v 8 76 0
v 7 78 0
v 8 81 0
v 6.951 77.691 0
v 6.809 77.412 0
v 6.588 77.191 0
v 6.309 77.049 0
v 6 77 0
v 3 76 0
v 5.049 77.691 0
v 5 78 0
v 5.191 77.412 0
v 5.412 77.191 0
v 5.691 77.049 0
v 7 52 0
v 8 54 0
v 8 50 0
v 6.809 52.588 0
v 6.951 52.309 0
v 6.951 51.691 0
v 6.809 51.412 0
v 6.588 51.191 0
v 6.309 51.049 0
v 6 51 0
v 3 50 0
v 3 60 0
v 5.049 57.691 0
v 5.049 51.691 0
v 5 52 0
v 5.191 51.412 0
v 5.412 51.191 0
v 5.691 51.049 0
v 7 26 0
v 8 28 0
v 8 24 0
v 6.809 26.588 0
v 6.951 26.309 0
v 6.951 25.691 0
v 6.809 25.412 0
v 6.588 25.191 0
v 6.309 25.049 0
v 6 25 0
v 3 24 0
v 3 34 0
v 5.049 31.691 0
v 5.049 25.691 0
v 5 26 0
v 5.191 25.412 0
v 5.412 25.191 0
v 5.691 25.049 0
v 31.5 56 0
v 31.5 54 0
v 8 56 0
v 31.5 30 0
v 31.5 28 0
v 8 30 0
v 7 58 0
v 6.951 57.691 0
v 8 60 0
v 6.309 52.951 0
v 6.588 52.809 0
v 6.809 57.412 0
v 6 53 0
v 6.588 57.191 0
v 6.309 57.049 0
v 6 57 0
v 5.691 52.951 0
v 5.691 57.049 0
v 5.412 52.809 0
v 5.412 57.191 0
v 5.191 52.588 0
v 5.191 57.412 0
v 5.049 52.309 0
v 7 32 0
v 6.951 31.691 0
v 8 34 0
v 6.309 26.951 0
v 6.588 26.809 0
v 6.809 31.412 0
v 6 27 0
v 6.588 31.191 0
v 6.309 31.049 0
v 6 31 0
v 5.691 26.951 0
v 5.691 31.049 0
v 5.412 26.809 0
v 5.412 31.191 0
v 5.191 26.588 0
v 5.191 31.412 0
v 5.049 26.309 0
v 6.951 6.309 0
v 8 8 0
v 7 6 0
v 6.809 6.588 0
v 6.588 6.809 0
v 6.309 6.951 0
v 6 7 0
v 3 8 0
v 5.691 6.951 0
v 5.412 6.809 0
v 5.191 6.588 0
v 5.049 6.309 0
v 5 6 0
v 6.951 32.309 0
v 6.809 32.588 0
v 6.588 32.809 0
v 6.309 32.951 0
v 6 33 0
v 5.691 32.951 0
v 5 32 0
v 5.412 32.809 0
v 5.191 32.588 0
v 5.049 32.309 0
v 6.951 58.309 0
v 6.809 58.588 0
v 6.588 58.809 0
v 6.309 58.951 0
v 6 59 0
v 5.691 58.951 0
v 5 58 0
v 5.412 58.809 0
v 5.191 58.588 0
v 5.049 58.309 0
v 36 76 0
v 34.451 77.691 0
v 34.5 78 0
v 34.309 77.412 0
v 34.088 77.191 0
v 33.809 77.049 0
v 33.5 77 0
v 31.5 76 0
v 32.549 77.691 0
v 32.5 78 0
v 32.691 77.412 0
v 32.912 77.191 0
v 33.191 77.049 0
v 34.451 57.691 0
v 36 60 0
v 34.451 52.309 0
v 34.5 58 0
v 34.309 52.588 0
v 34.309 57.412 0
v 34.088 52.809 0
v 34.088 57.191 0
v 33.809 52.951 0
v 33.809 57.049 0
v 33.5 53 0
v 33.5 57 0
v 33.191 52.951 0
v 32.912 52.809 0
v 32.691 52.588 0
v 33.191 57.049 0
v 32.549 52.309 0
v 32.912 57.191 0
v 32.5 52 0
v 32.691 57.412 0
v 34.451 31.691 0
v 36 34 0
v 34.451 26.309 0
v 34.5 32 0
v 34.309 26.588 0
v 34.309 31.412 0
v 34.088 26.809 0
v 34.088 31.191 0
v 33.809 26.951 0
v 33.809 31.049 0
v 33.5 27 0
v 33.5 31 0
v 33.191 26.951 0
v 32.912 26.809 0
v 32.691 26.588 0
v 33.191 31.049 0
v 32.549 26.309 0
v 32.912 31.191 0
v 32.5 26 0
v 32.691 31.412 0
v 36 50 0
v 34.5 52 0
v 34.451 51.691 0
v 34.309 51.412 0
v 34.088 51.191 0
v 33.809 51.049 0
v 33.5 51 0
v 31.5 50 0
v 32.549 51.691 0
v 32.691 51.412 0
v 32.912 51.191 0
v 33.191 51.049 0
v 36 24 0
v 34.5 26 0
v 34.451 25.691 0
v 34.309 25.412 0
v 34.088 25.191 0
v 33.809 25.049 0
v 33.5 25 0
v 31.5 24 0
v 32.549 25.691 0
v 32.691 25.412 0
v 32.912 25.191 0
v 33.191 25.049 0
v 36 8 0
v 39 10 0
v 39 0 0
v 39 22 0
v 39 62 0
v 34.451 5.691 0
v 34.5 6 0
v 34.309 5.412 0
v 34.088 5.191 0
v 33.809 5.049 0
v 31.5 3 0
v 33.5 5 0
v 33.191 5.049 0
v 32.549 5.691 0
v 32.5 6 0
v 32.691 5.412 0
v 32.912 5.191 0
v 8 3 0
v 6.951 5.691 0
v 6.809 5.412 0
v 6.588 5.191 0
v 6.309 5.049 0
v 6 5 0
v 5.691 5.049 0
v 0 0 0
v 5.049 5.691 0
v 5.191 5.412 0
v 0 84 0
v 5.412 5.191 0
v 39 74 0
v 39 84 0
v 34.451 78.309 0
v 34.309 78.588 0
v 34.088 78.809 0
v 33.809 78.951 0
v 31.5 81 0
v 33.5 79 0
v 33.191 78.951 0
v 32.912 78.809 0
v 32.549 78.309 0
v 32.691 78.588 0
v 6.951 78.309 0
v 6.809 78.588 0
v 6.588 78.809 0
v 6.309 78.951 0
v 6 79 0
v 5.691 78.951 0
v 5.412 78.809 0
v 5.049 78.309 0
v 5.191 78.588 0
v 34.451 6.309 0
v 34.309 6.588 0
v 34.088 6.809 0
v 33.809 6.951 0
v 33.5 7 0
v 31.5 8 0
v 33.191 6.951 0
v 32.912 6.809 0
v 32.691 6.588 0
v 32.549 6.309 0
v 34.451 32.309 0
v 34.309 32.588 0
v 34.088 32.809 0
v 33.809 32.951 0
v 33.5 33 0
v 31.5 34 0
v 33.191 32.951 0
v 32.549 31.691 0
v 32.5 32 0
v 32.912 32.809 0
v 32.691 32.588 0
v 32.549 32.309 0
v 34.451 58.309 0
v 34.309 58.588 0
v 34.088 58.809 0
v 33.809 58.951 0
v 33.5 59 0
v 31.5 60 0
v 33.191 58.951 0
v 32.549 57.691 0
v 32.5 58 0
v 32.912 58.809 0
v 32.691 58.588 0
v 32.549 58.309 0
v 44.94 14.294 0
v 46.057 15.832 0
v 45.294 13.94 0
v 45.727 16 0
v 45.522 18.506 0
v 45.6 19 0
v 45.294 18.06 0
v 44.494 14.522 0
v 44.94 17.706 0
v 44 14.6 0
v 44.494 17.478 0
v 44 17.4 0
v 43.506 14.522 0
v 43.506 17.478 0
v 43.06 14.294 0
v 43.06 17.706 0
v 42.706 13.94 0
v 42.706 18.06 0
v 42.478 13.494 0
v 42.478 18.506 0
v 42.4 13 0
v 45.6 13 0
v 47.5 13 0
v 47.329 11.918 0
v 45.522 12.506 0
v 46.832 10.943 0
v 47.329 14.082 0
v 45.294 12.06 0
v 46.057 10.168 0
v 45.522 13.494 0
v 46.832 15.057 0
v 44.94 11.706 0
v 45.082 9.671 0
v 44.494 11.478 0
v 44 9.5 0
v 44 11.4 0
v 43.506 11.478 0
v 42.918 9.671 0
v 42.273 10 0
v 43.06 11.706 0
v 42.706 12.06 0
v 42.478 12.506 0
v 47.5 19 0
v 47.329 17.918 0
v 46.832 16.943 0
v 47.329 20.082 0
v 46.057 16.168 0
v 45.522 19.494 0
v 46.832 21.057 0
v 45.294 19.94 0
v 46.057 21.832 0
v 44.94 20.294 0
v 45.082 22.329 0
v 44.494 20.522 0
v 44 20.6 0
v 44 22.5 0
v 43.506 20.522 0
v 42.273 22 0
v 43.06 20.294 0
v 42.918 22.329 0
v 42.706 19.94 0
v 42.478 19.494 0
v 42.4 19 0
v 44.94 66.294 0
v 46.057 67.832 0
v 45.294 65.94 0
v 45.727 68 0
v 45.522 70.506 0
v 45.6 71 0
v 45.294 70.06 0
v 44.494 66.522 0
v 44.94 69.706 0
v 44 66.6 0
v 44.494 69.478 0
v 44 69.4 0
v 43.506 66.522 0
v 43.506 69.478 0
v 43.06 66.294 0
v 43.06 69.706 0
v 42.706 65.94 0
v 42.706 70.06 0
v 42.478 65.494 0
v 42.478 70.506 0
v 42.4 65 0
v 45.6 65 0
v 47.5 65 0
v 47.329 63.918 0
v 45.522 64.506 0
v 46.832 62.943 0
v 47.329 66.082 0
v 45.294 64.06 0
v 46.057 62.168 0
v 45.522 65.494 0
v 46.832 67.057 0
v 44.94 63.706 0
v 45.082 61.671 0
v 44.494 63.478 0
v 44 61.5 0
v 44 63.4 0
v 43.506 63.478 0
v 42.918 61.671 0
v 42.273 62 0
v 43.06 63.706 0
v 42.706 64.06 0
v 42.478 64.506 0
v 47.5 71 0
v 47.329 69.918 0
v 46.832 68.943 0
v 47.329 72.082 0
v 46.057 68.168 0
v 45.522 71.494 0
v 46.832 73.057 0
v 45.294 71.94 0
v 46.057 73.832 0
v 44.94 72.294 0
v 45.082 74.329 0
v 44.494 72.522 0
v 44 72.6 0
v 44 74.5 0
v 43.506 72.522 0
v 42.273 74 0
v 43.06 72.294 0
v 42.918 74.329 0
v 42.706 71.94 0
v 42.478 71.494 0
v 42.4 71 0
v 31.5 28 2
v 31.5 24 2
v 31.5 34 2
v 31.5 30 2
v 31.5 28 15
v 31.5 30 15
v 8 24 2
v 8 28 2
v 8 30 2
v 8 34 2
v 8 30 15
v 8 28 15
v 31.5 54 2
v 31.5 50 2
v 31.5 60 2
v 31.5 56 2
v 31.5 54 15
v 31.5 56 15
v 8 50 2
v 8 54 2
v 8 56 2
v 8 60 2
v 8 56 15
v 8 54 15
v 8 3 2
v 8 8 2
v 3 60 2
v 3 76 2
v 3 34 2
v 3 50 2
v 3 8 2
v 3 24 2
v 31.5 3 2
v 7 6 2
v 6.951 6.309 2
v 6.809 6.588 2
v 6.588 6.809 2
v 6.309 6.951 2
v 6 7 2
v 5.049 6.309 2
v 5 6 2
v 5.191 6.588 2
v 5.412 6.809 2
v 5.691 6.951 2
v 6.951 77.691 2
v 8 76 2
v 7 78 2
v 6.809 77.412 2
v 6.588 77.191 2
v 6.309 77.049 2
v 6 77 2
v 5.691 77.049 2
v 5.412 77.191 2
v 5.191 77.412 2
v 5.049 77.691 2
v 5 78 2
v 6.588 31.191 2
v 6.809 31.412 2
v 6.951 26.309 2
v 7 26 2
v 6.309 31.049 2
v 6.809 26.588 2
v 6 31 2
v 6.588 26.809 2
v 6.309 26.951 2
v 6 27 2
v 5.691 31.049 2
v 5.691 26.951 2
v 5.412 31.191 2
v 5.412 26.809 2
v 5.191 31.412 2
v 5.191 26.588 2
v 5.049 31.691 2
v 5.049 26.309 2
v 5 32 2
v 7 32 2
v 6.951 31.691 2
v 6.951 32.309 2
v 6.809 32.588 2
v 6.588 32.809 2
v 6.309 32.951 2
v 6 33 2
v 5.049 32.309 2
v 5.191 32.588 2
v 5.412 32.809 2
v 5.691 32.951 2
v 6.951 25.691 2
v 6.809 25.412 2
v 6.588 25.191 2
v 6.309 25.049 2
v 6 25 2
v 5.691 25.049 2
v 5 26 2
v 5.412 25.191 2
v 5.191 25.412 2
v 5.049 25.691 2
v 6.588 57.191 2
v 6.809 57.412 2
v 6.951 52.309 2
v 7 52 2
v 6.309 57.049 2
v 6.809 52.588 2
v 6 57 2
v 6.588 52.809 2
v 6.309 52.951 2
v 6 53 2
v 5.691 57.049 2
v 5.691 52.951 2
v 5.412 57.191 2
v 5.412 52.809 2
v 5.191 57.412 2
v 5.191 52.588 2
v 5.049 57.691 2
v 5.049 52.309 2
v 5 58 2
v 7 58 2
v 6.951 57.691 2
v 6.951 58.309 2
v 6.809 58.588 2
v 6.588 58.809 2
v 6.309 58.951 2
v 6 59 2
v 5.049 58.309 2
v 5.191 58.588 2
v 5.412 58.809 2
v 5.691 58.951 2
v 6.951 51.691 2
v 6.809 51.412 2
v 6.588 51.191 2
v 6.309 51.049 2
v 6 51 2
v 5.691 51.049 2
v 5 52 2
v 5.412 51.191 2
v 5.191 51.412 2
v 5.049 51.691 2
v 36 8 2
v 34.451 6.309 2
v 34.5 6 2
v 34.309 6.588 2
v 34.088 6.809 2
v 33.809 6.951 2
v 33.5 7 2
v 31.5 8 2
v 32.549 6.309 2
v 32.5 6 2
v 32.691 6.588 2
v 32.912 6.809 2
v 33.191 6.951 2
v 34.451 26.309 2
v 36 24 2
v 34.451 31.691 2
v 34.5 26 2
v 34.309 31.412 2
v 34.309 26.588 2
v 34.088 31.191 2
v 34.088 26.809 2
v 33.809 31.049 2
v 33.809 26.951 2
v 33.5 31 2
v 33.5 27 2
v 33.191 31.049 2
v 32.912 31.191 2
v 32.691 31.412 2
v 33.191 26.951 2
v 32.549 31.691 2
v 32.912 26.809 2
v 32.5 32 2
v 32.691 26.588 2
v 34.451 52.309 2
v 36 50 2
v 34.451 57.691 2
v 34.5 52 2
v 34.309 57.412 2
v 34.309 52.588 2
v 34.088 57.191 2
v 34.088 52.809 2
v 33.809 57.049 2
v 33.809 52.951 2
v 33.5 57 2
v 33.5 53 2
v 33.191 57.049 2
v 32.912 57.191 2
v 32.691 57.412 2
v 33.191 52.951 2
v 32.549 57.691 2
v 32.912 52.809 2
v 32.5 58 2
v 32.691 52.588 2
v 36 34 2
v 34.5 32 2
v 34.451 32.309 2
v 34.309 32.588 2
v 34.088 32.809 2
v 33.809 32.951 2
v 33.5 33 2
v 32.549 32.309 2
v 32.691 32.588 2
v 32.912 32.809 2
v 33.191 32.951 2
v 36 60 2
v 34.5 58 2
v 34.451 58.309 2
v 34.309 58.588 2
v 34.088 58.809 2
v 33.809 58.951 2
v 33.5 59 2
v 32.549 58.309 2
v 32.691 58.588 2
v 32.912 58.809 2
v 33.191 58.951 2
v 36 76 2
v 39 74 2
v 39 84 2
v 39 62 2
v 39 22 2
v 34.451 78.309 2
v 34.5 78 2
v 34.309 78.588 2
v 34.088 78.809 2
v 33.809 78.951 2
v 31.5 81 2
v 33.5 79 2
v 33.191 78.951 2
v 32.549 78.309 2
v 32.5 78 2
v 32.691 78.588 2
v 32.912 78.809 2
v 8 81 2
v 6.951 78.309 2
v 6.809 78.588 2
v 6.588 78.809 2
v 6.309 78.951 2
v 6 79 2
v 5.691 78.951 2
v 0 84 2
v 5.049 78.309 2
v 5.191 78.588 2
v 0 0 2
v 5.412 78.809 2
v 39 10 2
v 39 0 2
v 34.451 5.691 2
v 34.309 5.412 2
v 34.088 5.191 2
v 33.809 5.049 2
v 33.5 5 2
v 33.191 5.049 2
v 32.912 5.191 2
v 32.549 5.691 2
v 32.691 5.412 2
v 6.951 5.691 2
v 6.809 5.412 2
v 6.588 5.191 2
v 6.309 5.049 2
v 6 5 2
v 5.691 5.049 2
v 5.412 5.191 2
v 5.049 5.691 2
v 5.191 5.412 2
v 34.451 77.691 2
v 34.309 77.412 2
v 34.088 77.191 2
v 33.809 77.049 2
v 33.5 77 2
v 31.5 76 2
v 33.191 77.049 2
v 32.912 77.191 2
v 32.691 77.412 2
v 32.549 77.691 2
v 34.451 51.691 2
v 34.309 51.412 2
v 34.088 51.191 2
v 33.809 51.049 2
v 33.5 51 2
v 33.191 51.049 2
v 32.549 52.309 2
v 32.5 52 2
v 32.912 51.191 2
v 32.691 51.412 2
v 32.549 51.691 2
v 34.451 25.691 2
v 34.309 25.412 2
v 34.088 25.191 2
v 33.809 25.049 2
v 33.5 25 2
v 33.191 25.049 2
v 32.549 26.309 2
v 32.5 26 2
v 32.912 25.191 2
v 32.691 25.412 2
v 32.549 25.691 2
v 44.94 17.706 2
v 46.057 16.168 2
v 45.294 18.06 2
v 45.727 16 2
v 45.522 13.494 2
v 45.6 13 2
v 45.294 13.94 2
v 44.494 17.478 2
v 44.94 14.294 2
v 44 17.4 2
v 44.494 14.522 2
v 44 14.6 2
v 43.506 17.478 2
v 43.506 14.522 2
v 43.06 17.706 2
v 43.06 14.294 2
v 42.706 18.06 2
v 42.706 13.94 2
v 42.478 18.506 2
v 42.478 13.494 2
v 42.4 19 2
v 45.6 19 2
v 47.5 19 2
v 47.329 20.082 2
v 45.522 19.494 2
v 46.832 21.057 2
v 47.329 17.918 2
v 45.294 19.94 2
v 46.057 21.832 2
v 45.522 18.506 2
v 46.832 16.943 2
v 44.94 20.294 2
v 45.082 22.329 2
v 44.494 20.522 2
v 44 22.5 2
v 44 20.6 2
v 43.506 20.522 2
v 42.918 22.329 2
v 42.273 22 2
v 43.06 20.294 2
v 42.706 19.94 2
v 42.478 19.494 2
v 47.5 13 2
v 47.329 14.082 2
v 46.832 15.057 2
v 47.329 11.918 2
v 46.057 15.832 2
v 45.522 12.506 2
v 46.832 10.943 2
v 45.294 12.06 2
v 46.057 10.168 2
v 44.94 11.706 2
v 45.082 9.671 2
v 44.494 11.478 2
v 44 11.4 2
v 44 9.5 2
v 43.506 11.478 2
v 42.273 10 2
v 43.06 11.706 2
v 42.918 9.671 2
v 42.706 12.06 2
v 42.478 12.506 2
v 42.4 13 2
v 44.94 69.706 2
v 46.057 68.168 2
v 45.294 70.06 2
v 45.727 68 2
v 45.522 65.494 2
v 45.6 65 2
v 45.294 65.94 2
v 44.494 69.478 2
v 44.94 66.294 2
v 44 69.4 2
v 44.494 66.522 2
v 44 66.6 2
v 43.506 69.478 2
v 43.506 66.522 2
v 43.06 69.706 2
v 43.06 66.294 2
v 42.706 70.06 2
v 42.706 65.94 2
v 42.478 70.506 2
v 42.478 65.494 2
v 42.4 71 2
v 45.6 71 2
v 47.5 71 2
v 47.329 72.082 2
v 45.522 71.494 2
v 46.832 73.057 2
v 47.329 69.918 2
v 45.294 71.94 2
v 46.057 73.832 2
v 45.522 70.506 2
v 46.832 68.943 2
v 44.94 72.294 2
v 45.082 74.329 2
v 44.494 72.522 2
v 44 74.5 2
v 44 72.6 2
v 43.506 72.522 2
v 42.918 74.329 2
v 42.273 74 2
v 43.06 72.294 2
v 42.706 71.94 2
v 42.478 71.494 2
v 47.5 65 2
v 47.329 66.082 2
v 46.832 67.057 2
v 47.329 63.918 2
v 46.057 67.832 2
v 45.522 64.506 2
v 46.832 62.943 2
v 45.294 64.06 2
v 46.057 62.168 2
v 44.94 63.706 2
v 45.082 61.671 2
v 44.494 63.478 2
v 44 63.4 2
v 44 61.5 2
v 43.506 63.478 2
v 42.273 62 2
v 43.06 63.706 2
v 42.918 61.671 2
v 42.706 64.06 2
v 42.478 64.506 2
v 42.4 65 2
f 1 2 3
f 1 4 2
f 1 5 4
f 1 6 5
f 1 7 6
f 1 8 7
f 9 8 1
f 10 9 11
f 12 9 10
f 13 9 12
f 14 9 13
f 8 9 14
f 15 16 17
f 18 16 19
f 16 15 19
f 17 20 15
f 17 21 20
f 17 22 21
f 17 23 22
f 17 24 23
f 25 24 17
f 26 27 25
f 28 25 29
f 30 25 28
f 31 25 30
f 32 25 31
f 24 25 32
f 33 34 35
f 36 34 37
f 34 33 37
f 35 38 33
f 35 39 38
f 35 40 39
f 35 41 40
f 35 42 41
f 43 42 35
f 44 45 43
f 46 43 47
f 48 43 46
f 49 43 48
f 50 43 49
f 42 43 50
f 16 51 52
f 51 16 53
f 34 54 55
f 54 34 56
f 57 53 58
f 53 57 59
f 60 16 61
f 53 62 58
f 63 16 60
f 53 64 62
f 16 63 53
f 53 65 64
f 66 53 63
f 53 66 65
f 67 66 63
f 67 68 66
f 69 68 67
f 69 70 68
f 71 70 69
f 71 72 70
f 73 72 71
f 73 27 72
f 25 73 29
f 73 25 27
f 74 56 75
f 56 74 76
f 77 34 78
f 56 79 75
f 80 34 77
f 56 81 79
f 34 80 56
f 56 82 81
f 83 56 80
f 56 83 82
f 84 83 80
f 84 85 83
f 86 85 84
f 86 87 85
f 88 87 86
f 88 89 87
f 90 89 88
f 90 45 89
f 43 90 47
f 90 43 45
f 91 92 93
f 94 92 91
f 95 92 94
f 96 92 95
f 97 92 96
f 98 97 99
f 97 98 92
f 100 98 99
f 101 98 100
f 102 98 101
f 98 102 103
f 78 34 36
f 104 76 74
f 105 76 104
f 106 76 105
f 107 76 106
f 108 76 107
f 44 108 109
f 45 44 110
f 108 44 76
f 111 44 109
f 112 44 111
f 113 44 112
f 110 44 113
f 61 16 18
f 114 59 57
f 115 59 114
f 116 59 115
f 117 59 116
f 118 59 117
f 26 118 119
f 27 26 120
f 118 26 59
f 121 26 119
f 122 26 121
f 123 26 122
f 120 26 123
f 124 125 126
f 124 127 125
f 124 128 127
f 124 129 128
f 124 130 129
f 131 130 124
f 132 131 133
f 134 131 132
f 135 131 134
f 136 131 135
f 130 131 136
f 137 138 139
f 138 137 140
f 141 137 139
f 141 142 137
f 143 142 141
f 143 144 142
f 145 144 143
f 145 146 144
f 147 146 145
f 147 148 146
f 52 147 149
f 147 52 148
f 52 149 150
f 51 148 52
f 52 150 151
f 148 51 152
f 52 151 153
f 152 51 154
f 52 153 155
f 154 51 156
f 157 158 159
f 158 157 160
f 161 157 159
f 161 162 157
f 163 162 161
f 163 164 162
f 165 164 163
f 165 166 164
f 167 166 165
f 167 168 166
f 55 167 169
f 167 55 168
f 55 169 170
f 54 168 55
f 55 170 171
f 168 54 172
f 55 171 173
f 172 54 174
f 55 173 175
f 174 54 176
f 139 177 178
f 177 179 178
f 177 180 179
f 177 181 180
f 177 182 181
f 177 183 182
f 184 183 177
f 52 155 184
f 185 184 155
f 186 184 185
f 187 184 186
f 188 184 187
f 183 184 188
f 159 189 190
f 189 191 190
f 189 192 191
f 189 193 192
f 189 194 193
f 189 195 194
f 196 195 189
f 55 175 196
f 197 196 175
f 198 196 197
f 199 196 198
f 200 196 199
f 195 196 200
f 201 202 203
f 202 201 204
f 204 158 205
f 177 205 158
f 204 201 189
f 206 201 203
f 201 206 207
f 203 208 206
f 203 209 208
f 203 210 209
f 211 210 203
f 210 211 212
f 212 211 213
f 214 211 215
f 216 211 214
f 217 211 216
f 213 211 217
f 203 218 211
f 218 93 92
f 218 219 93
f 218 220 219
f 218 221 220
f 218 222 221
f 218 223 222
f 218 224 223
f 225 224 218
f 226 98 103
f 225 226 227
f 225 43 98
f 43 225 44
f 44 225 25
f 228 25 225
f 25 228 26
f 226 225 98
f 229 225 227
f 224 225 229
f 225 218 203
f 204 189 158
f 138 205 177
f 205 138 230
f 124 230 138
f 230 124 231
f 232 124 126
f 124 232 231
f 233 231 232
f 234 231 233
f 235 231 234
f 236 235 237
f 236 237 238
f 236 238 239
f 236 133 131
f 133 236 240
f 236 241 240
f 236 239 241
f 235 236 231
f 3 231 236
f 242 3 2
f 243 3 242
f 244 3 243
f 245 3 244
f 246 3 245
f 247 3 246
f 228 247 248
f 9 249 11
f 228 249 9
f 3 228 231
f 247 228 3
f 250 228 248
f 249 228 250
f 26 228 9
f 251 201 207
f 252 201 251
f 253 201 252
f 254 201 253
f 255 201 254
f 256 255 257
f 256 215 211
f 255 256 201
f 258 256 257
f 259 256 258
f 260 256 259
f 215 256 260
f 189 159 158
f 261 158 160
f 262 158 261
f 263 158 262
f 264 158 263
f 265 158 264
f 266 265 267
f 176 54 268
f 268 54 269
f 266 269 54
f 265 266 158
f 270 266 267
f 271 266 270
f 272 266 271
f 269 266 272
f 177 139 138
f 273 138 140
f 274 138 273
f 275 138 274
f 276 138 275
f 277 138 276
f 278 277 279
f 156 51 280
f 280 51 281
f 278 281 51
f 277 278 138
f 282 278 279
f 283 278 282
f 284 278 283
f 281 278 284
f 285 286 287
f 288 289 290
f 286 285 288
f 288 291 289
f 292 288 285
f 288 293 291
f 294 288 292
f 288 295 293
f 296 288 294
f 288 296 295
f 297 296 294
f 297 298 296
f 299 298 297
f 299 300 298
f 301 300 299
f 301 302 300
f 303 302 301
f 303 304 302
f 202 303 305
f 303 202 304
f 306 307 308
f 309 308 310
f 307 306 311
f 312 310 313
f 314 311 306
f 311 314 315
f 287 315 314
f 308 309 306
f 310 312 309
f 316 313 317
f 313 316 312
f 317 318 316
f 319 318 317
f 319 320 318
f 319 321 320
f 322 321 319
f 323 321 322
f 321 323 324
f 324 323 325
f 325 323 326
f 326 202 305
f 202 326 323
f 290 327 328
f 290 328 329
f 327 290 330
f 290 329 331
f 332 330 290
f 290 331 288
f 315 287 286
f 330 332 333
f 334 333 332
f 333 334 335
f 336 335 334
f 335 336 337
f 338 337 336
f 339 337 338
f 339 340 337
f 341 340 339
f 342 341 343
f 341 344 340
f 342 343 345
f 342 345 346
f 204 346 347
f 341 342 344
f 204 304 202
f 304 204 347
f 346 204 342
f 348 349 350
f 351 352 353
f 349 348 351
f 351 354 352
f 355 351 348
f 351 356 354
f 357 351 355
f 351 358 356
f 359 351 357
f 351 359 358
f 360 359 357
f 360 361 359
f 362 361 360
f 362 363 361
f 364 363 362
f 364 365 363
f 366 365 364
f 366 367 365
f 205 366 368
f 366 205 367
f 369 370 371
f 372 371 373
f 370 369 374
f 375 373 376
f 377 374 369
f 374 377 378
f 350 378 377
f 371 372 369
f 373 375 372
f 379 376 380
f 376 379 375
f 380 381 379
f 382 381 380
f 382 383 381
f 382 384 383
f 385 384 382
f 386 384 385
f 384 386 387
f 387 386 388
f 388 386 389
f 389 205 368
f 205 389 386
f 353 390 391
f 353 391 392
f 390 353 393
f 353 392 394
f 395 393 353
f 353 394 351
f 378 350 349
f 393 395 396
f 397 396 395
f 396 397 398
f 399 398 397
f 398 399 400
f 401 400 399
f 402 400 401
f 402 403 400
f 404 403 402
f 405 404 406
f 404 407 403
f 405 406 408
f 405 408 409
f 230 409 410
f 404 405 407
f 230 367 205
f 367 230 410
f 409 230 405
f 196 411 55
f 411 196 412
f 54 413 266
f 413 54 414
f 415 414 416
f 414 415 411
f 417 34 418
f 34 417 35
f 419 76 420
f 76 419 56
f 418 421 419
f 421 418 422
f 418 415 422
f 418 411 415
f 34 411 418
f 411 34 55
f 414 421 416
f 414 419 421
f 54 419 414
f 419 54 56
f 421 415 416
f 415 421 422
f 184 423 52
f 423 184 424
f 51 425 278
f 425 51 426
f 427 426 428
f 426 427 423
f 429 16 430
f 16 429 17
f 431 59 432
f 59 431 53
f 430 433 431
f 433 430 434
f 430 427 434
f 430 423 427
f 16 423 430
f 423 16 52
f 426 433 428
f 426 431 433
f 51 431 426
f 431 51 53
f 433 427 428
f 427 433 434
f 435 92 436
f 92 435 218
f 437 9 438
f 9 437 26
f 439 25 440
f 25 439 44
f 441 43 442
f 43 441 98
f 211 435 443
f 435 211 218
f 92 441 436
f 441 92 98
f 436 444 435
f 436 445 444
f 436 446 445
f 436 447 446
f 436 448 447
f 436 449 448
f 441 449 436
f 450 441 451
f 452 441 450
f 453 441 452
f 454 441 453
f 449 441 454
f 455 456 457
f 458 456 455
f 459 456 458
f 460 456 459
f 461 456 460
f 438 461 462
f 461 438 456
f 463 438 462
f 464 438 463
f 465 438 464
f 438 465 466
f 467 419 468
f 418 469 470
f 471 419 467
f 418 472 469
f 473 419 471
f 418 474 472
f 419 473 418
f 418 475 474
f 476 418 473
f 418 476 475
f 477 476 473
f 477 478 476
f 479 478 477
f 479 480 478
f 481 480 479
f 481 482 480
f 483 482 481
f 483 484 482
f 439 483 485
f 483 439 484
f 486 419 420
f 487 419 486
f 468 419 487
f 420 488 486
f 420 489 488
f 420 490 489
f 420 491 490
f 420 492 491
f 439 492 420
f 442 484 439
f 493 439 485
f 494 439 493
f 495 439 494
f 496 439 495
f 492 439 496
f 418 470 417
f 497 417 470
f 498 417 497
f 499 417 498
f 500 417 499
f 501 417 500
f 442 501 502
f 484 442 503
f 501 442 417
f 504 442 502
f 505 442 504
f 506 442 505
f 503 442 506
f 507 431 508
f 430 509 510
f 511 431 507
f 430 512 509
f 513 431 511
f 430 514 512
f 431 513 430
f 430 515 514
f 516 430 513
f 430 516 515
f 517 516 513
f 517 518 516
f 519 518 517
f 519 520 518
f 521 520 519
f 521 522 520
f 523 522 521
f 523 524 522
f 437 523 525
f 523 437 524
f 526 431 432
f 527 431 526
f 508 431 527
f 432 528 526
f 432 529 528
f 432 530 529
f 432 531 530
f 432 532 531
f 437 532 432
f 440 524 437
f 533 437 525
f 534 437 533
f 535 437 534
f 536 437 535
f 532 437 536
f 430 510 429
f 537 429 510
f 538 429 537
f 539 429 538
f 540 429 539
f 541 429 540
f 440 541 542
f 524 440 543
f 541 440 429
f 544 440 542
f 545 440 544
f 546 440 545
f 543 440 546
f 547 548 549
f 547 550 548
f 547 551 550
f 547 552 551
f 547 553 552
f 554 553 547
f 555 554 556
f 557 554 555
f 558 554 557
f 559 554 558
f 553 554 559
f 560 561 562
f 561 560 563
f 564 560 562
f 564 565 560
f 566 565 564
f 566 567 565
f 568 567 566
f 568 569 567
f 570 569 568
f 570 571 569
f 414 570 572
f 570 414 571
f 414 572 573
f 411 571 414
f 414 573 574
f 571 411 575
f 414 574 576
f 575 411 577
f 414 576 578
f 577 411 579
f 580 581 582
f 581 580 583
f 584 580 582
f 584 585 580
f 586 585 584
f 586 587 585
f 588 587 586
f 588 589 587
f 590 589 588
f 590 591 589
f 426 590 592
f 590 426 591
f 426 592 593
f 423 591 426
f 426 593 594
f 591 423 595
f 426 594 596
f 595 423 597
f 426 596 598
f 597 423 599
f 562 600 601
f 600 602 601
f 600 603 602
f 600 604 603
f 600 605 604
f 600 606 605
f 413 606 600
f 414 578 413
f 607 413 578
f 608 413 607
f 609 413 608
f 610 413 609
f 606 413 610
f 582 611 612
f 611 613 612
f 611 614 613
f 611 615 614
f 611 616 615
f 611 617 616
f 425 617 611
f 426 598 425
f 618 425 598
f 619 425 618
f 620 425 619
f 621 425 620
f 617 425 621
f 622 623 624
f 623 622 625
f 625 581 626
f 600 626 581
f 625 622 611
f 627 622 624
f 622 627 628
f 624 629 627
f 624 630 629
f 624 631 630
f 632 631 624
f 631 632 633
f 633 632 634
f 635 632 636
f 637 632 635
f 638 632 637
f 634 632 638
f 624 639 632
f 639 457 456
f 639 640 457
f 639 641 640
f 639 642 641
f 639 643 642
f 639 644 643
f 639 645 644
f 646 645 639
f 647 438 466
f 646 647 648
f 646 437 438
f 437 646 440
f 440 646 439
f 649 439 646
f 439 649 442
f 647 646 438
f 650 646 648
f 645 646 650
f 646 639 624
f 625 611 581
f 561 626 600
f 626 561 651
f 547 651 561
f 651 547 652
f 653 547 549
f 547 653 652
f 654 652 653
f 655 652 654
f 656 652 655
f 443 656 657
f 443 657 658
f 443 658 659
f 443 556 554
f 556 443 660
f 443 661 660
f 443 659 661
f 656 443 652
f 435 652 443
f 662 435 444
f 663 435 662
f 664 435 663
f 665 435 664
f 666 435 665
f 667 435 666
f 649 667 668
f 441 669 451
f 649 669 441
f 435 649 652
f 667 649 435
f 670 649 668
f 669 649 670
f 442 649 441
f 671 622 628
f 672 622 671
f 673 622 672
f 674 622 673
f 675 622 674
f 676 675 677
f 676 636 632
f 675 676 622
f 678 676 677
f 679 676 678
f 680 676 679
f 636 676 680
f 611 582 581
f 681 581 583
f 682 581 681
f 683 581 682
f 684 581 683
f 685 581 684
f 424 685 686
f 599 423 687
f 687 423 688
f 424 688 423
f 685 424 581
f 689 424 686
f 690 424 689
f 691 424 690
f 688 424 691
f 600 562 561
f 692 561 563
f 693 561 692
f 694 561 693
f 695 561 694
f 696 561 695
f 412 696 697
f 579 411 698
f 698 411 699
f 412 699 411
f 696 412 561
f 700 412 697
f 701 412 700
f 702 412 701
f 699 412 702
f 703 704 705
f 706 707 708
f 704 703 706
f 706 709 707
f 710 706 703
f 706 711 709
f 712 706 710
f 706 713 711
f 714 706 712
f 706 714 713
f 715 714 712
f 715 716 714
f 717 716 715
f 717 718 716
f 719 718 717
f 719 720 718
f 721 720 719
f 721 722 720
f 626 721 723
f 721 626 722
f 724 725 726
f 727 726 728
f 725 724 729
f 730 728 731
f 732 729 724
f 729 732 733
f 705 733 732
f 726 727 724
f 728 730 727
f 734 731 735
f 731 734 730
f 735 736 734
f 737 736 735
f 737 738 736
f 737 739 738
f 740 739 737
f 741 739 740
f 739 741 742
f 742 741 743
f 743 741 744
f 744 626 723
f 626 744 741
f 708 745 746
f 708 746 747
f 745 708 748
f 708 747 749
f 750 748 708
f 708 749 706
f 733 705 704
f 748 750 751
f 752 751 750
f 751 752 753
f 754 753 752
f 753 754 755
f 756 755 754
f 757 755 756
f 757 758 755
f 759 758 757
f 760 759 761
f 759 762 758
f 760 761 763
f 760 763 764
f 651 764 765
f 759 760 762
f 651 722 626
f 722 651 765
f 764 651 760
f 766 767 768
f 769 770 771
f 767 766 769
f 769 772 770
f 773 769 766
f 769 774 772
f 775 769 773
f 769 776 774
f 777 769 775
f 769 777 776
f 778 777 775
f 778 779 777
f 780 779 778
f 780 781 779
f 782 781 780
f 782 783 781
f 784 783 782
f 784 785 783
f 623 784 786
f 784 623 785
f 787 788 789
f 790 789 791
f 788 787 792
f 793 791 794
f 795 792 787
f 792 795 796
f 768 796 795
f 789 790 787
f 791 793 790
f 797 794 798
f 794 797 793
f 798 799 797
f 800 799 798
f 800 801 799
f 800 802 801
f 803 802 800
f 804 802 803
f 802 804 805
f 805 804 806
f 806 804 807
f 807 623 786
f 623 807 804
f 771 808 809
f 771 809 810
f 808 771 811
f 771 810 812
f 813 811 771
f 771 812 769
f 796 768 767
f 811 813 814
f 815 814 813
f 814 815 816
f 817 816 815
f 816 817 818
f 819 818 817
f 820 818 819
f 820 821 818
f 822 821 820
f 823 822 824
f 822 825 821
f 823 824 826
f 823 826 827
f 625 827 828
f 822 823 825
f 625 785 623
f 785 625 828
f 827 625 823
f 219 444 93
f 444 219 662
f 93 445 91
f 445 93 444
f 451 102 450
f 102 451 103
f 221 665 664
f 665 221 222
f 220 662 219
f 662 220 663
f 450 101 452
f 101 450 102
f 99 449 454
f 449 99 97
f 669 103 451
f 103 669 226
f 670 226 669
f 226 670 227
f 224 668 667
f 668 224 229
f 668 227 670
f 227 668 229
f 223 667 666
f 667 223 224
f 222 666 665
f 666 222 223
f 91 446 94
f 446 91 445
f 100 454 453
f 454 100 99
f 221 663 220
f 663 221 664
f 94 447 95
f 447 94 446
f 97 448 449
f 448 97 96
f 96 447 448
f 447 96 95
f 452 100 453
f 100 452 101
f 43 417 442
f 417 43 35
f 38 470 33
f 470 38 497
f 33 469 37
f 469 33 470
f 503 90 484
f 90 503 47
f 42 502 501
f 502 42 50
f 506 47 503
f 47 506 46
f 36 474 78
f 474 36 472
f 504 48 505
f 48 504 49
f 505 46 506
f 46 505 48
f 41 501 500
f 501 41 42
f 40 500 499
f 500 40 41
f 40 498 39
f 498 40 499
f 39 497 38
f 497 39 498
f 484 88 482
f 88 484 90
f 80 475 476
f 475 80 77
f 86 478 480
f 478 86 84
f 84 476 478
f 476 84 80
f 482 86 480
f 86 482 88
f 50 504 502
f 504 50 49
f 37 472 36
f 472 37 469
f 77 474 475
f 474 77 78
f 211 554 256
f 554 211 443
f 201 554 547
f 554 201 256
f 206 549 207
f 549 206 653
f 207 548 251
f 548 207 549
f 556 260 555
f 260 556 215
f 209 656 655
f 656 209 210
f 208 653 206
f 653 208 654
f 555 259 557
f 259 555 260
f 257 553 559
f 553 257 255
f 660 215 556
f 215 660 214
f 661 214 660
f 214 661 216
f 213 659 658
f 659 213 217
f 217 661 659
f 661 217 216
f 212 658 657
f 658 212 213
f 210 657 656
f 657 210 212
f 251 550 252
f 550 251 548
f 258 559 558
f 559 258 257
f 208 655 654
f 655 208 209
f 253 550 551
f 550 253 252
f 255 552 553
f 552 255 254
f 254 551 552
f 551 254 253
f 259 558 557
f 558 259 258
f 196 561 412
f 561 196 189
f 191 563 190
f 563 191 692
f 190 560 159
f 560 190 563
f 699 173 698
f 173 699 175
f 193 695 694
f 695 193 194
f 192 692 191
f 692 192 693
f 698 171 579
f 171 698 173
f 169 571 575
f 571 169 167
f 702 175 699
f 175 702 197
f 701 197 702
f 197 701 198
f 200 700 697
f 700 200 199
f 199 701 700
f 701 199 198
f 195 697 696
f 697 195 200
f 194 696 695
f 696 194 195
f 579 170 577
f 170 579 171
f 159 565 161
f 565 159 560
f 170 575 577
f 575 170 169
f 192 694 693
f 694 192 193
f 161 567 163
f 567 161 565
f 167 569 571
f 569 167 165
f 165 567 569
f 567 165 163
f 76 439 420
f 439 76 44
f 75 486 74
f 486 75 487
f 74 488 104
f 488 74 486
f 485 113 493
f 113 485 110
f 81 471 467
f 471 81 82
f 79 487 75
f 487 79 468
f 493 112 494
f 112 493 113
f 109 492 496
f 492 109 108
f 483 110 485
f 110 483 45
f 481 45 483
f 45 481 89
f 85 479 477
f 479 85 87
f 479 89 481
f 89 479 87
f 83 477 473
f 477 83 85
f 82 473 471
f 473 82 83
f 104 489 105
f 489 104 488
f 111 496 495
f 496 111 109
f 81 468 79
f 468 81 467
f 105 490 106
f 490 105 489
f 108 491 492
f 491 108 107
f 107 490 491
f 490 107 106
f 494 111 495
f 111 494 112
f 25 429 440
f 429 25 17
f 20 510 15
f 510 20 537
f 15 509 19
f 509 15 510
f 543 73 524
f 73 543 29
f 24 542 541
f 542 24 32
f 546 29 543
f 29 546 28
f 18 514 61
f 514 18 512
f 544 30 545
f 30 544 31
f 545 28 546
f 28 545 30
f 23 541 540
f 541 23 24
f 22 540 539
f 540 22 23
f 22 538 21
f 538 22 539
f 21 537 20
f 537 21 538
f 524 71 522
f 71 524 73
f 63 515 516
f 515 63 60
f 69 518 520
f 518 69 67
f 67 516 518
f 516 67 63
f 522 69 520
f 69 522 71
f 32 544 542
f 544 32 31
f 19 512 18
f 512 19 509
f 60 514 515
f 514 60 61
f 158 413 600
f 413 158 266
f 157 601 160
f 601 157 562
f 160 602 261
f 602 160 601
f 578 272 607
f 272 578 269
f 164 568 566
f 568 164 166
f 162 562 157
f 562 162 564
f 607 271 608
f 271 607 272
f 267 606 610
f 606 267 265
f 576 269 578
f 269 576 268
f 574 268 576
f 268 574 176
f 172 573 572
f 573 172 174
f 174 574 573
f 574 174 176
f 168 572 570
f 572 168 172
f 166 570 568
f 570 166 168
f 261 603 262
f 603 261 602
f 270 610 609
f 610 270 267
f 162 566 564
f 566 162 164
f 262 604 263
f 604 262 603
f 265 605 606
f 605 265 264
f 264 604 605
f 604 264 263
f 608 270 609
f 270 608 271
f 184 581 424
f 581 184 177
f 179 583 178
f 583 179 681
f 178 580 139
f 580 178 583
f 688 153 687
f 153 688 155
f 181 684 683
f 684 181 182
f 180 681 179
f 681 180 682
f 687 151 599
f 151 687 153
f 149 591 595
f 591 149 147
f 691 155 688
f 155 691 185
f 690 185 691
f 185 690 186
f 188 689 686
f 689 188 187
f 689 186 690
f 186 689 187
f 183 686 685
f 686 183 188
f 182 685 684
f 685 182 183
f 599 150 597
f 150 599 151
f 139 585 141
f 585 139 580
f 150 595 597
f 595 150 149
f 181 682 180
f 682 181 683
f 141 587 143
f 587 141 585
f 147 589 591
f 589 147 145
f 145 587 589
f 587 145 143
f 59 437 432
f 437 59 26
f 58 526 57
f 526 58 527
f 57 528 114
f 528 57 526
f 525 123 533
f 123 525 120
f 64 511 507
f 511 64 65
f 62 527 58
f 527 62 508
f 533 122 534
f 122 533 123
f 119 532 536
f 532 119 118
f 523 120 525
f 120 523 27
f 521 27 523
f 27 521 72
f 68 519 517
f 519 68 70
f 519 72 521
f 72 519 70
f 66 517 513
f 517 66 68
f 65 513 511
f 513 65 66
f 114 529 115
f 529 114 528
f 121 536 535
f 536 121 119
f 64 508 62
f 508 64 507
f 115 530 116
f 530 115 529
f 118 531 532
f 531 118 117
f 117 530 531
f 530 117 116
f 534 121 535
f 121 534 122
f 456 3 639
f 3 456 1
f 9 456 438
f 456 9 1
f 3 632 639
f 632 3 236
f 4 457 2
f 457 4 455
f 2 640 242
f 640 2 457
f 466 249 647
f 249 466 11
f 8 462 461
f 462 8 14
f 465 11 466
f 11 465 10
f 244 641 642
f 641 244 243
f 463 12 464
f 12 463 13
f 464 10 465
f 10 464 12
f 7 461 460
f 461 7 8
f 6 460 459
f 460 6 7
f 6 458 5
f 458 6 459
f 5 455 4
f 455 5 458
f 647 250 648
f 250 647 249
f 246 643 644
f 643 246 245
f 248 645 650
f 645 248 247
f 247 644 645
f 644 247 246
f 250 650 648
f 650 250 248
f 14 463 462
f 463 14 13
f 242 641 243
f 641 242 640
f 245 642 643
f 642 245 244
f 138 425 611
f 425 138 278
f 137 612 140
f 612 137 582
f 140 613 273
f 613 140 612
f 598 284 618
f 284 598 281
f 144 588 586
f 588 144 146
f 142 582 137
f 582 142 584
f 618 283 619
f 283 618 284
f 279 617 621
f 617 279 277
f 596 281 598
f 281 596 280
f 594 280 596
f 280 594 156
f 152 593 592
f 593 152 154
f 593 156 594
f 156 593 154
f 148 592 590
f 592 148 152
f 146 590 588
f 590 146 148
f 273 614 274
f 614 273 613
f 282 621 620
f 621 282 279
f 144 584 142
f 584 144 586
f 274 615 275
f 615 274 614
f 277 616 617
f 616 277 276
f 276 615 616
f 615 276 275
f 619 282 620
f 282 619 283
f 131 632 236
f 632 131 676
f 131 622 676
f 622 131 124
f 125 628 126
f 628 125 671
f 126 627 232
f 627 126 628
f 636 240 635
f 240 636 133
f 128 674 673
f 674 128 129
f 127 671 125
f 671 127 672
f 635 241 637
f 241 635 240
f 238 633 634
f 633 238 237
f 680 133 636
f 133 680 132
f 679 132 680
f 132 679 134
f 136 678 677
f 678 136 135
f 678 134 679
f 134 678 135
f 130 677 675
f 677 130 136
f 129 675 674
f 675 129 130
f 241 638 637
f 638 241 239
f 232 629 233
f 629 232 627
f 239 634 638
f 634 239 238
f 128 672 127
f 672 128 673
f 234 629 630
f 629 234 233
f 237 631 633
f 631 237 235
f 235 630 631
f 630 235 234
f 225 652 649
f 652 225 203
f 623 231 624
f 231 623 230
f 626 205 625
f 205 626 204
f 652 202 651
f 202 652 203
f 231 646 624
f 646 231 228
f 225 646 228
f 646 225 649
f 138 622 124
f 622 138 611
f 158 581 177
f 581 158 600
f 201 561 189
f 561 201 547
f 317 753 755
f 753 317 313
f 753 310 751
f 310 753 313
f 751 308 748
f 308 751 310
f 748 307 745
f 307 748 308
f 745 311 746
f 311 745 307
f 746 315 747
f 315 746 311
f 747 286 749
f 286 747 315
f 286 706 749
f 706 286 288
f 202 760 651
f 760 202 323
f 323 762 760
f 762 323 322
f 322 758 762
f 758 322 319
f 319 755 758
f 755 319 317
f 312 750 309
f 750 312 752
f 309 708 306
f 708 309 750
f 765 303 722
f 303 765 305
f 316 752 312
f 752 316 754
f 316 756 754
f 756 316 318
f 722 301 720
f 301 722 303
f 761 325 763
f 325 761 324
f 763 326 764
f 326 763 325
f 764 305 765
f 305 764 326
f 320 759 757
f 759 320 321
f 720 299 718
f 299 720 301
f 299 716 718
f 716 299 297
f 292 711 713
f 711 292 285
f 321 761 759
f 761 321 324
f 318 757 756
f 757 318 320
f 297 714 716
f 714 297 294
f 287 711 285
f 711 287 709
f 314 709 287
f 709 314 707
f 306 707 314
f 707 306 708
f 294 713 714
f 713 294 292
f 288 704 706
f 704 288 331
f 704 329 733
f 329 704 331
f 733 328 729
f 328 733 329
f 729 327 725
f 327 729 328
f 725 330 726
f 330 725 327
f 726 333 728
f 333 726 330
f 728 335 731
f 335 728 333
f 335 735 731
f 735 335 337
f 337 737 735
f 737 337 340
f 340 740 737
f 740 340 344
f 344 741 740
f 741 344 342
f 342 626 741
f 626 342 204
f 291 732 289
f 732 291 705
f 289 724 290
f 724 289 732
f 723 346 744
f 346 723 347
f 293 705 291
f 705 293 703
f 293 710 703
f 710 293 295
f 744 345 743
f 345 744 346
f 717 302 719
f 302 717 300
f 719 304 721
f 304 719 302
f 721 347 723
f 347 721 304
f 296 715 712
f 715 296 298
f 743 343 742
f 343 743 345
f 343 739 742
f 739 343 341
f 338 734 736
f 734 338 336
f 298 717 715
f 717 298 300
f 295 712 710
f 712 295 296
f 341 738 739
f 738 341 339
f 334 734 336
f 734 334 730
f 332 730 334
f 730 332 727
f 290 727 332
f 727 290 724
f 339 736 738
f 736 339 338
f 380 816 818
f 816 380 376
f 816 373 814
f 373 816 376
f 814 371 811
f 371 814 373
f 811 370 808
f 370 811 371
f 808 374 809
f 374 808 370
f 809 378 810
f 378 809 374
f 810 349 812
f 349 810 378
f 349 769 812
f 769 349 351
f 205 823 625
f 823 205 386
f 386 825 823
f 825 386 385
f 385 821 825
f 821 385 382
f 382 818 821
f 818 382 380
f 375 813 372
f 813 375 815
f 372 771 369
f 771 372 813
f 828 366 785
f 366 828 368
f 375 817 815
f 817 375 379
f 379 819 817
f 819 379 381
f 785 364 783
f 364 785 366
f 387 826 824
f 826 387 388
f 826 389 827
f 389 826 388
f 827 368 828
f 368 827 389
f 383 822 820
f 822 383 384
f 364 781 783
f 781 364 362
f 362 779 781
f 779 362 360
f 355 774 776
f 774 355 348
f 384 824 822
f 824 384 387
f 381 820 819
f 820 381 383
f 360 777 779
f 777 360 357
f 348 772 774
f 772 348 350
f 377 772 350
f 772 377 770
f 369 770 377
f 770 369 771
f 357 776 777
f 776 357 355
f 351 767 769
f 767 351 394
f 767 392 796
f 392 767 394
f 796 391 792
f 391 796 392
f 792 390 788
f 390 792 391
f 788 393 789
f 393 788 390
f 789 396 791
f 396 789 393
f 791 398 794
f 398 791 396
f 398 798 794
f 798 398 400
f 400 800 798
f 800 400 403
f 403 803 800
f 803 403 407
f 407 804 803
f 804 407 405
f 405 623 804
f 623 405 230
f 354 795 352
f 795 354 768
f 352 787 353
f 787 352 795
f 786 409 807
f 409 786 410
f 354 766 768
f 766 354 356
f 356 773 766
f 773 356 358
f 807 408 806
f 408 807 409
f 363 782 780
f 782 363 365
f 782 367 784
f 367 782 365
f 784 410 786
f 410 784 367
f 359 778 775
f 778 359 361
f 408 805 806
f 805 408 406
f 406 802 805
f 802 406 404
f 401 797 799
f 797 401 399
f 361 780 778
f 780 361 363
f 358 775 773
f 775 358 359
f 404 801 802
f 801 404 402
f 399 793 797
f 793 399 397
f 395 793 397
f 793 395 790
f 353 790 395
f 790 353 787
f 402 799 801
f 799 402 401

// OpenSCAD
// file: ../common.scad
module screw_hole(radius, h)
    linear_extrude(height=h)
    {
        circle(r=radius, $fn = 20);
    }
// main file
use <../common.scad>;

module sensor_holder_block()
    linear_extrude(height=2)
    {
        square([5,5]);
    }
             
module sensor_holder_corner_with_hole(x_offset, y_offset)
    difference()
    {
        sensor_holder_block();
        translate([x_offset,y_offset,0])
            screw_hole(1, 2);
     }

module one_sensor_holder_all_corners()
{
    sensor_holder_corner_with_hole(3, 3); 
    translate([0,21,0])
        sensor_holder_corner_with_hole(3, 2);
    translate([28.5,0,0])
        sensor_holder_corner_with_hole(2, 3);
    translate([28.5,21,0])
        sensor_holder_corner_with_hole(2, 2);
}

module all_sensor_holders()
{
    one_sensor_holder_all_corners();
    translate([0,26,0])
        one_sensor_holder_all_corners();
    translate([0,52,0])
        one_sensor_holder_all_corners();
}

module sensors_mount_outer_brace()
    linear_extrude(height=2)
    {
        square([3,84]);
        translate([36,0,0])
            square([3,84]);
        translate([3,0,0])
            square([33.5,3]);
        translate([3,81,0])
            square([33.5,3]);
    }

module sensors_mount()
{
    sensors_mount_outer_brace();
    translate([3,3,0])
        all_sensor_holders();
}

module sensor_divider()
    linear_extrude(height = 15)
    {
        square([23.5, 2]);
    }

module dividers()
{
    translate([8,28,0])
        sensor_divider();
    translate([8,54,0])
        sensor_divider();
}

module chassis_connector_block()
    linear_extrude(height = 2)
    {
        circle(r=3.5, $fn = 20);
        translate([-5,-3,0])
            square([4, 6]);
    }

module chassis_connector()
    difference()
    {
        chassis_connector_block();
        screw_hole(1.6,2);
    }

module chassis_connectors()
{
    translate([44,10,0])
        chassis_connector();
    translate([44,16,0])
        chassis_connector();
    translate([44,62,0])
        chassis_connector();
    translate([44,68,0])
        chassis_connector();
}

sensors_mount();
dividers();
translate([0,3,0])
    chassis_connectors();
